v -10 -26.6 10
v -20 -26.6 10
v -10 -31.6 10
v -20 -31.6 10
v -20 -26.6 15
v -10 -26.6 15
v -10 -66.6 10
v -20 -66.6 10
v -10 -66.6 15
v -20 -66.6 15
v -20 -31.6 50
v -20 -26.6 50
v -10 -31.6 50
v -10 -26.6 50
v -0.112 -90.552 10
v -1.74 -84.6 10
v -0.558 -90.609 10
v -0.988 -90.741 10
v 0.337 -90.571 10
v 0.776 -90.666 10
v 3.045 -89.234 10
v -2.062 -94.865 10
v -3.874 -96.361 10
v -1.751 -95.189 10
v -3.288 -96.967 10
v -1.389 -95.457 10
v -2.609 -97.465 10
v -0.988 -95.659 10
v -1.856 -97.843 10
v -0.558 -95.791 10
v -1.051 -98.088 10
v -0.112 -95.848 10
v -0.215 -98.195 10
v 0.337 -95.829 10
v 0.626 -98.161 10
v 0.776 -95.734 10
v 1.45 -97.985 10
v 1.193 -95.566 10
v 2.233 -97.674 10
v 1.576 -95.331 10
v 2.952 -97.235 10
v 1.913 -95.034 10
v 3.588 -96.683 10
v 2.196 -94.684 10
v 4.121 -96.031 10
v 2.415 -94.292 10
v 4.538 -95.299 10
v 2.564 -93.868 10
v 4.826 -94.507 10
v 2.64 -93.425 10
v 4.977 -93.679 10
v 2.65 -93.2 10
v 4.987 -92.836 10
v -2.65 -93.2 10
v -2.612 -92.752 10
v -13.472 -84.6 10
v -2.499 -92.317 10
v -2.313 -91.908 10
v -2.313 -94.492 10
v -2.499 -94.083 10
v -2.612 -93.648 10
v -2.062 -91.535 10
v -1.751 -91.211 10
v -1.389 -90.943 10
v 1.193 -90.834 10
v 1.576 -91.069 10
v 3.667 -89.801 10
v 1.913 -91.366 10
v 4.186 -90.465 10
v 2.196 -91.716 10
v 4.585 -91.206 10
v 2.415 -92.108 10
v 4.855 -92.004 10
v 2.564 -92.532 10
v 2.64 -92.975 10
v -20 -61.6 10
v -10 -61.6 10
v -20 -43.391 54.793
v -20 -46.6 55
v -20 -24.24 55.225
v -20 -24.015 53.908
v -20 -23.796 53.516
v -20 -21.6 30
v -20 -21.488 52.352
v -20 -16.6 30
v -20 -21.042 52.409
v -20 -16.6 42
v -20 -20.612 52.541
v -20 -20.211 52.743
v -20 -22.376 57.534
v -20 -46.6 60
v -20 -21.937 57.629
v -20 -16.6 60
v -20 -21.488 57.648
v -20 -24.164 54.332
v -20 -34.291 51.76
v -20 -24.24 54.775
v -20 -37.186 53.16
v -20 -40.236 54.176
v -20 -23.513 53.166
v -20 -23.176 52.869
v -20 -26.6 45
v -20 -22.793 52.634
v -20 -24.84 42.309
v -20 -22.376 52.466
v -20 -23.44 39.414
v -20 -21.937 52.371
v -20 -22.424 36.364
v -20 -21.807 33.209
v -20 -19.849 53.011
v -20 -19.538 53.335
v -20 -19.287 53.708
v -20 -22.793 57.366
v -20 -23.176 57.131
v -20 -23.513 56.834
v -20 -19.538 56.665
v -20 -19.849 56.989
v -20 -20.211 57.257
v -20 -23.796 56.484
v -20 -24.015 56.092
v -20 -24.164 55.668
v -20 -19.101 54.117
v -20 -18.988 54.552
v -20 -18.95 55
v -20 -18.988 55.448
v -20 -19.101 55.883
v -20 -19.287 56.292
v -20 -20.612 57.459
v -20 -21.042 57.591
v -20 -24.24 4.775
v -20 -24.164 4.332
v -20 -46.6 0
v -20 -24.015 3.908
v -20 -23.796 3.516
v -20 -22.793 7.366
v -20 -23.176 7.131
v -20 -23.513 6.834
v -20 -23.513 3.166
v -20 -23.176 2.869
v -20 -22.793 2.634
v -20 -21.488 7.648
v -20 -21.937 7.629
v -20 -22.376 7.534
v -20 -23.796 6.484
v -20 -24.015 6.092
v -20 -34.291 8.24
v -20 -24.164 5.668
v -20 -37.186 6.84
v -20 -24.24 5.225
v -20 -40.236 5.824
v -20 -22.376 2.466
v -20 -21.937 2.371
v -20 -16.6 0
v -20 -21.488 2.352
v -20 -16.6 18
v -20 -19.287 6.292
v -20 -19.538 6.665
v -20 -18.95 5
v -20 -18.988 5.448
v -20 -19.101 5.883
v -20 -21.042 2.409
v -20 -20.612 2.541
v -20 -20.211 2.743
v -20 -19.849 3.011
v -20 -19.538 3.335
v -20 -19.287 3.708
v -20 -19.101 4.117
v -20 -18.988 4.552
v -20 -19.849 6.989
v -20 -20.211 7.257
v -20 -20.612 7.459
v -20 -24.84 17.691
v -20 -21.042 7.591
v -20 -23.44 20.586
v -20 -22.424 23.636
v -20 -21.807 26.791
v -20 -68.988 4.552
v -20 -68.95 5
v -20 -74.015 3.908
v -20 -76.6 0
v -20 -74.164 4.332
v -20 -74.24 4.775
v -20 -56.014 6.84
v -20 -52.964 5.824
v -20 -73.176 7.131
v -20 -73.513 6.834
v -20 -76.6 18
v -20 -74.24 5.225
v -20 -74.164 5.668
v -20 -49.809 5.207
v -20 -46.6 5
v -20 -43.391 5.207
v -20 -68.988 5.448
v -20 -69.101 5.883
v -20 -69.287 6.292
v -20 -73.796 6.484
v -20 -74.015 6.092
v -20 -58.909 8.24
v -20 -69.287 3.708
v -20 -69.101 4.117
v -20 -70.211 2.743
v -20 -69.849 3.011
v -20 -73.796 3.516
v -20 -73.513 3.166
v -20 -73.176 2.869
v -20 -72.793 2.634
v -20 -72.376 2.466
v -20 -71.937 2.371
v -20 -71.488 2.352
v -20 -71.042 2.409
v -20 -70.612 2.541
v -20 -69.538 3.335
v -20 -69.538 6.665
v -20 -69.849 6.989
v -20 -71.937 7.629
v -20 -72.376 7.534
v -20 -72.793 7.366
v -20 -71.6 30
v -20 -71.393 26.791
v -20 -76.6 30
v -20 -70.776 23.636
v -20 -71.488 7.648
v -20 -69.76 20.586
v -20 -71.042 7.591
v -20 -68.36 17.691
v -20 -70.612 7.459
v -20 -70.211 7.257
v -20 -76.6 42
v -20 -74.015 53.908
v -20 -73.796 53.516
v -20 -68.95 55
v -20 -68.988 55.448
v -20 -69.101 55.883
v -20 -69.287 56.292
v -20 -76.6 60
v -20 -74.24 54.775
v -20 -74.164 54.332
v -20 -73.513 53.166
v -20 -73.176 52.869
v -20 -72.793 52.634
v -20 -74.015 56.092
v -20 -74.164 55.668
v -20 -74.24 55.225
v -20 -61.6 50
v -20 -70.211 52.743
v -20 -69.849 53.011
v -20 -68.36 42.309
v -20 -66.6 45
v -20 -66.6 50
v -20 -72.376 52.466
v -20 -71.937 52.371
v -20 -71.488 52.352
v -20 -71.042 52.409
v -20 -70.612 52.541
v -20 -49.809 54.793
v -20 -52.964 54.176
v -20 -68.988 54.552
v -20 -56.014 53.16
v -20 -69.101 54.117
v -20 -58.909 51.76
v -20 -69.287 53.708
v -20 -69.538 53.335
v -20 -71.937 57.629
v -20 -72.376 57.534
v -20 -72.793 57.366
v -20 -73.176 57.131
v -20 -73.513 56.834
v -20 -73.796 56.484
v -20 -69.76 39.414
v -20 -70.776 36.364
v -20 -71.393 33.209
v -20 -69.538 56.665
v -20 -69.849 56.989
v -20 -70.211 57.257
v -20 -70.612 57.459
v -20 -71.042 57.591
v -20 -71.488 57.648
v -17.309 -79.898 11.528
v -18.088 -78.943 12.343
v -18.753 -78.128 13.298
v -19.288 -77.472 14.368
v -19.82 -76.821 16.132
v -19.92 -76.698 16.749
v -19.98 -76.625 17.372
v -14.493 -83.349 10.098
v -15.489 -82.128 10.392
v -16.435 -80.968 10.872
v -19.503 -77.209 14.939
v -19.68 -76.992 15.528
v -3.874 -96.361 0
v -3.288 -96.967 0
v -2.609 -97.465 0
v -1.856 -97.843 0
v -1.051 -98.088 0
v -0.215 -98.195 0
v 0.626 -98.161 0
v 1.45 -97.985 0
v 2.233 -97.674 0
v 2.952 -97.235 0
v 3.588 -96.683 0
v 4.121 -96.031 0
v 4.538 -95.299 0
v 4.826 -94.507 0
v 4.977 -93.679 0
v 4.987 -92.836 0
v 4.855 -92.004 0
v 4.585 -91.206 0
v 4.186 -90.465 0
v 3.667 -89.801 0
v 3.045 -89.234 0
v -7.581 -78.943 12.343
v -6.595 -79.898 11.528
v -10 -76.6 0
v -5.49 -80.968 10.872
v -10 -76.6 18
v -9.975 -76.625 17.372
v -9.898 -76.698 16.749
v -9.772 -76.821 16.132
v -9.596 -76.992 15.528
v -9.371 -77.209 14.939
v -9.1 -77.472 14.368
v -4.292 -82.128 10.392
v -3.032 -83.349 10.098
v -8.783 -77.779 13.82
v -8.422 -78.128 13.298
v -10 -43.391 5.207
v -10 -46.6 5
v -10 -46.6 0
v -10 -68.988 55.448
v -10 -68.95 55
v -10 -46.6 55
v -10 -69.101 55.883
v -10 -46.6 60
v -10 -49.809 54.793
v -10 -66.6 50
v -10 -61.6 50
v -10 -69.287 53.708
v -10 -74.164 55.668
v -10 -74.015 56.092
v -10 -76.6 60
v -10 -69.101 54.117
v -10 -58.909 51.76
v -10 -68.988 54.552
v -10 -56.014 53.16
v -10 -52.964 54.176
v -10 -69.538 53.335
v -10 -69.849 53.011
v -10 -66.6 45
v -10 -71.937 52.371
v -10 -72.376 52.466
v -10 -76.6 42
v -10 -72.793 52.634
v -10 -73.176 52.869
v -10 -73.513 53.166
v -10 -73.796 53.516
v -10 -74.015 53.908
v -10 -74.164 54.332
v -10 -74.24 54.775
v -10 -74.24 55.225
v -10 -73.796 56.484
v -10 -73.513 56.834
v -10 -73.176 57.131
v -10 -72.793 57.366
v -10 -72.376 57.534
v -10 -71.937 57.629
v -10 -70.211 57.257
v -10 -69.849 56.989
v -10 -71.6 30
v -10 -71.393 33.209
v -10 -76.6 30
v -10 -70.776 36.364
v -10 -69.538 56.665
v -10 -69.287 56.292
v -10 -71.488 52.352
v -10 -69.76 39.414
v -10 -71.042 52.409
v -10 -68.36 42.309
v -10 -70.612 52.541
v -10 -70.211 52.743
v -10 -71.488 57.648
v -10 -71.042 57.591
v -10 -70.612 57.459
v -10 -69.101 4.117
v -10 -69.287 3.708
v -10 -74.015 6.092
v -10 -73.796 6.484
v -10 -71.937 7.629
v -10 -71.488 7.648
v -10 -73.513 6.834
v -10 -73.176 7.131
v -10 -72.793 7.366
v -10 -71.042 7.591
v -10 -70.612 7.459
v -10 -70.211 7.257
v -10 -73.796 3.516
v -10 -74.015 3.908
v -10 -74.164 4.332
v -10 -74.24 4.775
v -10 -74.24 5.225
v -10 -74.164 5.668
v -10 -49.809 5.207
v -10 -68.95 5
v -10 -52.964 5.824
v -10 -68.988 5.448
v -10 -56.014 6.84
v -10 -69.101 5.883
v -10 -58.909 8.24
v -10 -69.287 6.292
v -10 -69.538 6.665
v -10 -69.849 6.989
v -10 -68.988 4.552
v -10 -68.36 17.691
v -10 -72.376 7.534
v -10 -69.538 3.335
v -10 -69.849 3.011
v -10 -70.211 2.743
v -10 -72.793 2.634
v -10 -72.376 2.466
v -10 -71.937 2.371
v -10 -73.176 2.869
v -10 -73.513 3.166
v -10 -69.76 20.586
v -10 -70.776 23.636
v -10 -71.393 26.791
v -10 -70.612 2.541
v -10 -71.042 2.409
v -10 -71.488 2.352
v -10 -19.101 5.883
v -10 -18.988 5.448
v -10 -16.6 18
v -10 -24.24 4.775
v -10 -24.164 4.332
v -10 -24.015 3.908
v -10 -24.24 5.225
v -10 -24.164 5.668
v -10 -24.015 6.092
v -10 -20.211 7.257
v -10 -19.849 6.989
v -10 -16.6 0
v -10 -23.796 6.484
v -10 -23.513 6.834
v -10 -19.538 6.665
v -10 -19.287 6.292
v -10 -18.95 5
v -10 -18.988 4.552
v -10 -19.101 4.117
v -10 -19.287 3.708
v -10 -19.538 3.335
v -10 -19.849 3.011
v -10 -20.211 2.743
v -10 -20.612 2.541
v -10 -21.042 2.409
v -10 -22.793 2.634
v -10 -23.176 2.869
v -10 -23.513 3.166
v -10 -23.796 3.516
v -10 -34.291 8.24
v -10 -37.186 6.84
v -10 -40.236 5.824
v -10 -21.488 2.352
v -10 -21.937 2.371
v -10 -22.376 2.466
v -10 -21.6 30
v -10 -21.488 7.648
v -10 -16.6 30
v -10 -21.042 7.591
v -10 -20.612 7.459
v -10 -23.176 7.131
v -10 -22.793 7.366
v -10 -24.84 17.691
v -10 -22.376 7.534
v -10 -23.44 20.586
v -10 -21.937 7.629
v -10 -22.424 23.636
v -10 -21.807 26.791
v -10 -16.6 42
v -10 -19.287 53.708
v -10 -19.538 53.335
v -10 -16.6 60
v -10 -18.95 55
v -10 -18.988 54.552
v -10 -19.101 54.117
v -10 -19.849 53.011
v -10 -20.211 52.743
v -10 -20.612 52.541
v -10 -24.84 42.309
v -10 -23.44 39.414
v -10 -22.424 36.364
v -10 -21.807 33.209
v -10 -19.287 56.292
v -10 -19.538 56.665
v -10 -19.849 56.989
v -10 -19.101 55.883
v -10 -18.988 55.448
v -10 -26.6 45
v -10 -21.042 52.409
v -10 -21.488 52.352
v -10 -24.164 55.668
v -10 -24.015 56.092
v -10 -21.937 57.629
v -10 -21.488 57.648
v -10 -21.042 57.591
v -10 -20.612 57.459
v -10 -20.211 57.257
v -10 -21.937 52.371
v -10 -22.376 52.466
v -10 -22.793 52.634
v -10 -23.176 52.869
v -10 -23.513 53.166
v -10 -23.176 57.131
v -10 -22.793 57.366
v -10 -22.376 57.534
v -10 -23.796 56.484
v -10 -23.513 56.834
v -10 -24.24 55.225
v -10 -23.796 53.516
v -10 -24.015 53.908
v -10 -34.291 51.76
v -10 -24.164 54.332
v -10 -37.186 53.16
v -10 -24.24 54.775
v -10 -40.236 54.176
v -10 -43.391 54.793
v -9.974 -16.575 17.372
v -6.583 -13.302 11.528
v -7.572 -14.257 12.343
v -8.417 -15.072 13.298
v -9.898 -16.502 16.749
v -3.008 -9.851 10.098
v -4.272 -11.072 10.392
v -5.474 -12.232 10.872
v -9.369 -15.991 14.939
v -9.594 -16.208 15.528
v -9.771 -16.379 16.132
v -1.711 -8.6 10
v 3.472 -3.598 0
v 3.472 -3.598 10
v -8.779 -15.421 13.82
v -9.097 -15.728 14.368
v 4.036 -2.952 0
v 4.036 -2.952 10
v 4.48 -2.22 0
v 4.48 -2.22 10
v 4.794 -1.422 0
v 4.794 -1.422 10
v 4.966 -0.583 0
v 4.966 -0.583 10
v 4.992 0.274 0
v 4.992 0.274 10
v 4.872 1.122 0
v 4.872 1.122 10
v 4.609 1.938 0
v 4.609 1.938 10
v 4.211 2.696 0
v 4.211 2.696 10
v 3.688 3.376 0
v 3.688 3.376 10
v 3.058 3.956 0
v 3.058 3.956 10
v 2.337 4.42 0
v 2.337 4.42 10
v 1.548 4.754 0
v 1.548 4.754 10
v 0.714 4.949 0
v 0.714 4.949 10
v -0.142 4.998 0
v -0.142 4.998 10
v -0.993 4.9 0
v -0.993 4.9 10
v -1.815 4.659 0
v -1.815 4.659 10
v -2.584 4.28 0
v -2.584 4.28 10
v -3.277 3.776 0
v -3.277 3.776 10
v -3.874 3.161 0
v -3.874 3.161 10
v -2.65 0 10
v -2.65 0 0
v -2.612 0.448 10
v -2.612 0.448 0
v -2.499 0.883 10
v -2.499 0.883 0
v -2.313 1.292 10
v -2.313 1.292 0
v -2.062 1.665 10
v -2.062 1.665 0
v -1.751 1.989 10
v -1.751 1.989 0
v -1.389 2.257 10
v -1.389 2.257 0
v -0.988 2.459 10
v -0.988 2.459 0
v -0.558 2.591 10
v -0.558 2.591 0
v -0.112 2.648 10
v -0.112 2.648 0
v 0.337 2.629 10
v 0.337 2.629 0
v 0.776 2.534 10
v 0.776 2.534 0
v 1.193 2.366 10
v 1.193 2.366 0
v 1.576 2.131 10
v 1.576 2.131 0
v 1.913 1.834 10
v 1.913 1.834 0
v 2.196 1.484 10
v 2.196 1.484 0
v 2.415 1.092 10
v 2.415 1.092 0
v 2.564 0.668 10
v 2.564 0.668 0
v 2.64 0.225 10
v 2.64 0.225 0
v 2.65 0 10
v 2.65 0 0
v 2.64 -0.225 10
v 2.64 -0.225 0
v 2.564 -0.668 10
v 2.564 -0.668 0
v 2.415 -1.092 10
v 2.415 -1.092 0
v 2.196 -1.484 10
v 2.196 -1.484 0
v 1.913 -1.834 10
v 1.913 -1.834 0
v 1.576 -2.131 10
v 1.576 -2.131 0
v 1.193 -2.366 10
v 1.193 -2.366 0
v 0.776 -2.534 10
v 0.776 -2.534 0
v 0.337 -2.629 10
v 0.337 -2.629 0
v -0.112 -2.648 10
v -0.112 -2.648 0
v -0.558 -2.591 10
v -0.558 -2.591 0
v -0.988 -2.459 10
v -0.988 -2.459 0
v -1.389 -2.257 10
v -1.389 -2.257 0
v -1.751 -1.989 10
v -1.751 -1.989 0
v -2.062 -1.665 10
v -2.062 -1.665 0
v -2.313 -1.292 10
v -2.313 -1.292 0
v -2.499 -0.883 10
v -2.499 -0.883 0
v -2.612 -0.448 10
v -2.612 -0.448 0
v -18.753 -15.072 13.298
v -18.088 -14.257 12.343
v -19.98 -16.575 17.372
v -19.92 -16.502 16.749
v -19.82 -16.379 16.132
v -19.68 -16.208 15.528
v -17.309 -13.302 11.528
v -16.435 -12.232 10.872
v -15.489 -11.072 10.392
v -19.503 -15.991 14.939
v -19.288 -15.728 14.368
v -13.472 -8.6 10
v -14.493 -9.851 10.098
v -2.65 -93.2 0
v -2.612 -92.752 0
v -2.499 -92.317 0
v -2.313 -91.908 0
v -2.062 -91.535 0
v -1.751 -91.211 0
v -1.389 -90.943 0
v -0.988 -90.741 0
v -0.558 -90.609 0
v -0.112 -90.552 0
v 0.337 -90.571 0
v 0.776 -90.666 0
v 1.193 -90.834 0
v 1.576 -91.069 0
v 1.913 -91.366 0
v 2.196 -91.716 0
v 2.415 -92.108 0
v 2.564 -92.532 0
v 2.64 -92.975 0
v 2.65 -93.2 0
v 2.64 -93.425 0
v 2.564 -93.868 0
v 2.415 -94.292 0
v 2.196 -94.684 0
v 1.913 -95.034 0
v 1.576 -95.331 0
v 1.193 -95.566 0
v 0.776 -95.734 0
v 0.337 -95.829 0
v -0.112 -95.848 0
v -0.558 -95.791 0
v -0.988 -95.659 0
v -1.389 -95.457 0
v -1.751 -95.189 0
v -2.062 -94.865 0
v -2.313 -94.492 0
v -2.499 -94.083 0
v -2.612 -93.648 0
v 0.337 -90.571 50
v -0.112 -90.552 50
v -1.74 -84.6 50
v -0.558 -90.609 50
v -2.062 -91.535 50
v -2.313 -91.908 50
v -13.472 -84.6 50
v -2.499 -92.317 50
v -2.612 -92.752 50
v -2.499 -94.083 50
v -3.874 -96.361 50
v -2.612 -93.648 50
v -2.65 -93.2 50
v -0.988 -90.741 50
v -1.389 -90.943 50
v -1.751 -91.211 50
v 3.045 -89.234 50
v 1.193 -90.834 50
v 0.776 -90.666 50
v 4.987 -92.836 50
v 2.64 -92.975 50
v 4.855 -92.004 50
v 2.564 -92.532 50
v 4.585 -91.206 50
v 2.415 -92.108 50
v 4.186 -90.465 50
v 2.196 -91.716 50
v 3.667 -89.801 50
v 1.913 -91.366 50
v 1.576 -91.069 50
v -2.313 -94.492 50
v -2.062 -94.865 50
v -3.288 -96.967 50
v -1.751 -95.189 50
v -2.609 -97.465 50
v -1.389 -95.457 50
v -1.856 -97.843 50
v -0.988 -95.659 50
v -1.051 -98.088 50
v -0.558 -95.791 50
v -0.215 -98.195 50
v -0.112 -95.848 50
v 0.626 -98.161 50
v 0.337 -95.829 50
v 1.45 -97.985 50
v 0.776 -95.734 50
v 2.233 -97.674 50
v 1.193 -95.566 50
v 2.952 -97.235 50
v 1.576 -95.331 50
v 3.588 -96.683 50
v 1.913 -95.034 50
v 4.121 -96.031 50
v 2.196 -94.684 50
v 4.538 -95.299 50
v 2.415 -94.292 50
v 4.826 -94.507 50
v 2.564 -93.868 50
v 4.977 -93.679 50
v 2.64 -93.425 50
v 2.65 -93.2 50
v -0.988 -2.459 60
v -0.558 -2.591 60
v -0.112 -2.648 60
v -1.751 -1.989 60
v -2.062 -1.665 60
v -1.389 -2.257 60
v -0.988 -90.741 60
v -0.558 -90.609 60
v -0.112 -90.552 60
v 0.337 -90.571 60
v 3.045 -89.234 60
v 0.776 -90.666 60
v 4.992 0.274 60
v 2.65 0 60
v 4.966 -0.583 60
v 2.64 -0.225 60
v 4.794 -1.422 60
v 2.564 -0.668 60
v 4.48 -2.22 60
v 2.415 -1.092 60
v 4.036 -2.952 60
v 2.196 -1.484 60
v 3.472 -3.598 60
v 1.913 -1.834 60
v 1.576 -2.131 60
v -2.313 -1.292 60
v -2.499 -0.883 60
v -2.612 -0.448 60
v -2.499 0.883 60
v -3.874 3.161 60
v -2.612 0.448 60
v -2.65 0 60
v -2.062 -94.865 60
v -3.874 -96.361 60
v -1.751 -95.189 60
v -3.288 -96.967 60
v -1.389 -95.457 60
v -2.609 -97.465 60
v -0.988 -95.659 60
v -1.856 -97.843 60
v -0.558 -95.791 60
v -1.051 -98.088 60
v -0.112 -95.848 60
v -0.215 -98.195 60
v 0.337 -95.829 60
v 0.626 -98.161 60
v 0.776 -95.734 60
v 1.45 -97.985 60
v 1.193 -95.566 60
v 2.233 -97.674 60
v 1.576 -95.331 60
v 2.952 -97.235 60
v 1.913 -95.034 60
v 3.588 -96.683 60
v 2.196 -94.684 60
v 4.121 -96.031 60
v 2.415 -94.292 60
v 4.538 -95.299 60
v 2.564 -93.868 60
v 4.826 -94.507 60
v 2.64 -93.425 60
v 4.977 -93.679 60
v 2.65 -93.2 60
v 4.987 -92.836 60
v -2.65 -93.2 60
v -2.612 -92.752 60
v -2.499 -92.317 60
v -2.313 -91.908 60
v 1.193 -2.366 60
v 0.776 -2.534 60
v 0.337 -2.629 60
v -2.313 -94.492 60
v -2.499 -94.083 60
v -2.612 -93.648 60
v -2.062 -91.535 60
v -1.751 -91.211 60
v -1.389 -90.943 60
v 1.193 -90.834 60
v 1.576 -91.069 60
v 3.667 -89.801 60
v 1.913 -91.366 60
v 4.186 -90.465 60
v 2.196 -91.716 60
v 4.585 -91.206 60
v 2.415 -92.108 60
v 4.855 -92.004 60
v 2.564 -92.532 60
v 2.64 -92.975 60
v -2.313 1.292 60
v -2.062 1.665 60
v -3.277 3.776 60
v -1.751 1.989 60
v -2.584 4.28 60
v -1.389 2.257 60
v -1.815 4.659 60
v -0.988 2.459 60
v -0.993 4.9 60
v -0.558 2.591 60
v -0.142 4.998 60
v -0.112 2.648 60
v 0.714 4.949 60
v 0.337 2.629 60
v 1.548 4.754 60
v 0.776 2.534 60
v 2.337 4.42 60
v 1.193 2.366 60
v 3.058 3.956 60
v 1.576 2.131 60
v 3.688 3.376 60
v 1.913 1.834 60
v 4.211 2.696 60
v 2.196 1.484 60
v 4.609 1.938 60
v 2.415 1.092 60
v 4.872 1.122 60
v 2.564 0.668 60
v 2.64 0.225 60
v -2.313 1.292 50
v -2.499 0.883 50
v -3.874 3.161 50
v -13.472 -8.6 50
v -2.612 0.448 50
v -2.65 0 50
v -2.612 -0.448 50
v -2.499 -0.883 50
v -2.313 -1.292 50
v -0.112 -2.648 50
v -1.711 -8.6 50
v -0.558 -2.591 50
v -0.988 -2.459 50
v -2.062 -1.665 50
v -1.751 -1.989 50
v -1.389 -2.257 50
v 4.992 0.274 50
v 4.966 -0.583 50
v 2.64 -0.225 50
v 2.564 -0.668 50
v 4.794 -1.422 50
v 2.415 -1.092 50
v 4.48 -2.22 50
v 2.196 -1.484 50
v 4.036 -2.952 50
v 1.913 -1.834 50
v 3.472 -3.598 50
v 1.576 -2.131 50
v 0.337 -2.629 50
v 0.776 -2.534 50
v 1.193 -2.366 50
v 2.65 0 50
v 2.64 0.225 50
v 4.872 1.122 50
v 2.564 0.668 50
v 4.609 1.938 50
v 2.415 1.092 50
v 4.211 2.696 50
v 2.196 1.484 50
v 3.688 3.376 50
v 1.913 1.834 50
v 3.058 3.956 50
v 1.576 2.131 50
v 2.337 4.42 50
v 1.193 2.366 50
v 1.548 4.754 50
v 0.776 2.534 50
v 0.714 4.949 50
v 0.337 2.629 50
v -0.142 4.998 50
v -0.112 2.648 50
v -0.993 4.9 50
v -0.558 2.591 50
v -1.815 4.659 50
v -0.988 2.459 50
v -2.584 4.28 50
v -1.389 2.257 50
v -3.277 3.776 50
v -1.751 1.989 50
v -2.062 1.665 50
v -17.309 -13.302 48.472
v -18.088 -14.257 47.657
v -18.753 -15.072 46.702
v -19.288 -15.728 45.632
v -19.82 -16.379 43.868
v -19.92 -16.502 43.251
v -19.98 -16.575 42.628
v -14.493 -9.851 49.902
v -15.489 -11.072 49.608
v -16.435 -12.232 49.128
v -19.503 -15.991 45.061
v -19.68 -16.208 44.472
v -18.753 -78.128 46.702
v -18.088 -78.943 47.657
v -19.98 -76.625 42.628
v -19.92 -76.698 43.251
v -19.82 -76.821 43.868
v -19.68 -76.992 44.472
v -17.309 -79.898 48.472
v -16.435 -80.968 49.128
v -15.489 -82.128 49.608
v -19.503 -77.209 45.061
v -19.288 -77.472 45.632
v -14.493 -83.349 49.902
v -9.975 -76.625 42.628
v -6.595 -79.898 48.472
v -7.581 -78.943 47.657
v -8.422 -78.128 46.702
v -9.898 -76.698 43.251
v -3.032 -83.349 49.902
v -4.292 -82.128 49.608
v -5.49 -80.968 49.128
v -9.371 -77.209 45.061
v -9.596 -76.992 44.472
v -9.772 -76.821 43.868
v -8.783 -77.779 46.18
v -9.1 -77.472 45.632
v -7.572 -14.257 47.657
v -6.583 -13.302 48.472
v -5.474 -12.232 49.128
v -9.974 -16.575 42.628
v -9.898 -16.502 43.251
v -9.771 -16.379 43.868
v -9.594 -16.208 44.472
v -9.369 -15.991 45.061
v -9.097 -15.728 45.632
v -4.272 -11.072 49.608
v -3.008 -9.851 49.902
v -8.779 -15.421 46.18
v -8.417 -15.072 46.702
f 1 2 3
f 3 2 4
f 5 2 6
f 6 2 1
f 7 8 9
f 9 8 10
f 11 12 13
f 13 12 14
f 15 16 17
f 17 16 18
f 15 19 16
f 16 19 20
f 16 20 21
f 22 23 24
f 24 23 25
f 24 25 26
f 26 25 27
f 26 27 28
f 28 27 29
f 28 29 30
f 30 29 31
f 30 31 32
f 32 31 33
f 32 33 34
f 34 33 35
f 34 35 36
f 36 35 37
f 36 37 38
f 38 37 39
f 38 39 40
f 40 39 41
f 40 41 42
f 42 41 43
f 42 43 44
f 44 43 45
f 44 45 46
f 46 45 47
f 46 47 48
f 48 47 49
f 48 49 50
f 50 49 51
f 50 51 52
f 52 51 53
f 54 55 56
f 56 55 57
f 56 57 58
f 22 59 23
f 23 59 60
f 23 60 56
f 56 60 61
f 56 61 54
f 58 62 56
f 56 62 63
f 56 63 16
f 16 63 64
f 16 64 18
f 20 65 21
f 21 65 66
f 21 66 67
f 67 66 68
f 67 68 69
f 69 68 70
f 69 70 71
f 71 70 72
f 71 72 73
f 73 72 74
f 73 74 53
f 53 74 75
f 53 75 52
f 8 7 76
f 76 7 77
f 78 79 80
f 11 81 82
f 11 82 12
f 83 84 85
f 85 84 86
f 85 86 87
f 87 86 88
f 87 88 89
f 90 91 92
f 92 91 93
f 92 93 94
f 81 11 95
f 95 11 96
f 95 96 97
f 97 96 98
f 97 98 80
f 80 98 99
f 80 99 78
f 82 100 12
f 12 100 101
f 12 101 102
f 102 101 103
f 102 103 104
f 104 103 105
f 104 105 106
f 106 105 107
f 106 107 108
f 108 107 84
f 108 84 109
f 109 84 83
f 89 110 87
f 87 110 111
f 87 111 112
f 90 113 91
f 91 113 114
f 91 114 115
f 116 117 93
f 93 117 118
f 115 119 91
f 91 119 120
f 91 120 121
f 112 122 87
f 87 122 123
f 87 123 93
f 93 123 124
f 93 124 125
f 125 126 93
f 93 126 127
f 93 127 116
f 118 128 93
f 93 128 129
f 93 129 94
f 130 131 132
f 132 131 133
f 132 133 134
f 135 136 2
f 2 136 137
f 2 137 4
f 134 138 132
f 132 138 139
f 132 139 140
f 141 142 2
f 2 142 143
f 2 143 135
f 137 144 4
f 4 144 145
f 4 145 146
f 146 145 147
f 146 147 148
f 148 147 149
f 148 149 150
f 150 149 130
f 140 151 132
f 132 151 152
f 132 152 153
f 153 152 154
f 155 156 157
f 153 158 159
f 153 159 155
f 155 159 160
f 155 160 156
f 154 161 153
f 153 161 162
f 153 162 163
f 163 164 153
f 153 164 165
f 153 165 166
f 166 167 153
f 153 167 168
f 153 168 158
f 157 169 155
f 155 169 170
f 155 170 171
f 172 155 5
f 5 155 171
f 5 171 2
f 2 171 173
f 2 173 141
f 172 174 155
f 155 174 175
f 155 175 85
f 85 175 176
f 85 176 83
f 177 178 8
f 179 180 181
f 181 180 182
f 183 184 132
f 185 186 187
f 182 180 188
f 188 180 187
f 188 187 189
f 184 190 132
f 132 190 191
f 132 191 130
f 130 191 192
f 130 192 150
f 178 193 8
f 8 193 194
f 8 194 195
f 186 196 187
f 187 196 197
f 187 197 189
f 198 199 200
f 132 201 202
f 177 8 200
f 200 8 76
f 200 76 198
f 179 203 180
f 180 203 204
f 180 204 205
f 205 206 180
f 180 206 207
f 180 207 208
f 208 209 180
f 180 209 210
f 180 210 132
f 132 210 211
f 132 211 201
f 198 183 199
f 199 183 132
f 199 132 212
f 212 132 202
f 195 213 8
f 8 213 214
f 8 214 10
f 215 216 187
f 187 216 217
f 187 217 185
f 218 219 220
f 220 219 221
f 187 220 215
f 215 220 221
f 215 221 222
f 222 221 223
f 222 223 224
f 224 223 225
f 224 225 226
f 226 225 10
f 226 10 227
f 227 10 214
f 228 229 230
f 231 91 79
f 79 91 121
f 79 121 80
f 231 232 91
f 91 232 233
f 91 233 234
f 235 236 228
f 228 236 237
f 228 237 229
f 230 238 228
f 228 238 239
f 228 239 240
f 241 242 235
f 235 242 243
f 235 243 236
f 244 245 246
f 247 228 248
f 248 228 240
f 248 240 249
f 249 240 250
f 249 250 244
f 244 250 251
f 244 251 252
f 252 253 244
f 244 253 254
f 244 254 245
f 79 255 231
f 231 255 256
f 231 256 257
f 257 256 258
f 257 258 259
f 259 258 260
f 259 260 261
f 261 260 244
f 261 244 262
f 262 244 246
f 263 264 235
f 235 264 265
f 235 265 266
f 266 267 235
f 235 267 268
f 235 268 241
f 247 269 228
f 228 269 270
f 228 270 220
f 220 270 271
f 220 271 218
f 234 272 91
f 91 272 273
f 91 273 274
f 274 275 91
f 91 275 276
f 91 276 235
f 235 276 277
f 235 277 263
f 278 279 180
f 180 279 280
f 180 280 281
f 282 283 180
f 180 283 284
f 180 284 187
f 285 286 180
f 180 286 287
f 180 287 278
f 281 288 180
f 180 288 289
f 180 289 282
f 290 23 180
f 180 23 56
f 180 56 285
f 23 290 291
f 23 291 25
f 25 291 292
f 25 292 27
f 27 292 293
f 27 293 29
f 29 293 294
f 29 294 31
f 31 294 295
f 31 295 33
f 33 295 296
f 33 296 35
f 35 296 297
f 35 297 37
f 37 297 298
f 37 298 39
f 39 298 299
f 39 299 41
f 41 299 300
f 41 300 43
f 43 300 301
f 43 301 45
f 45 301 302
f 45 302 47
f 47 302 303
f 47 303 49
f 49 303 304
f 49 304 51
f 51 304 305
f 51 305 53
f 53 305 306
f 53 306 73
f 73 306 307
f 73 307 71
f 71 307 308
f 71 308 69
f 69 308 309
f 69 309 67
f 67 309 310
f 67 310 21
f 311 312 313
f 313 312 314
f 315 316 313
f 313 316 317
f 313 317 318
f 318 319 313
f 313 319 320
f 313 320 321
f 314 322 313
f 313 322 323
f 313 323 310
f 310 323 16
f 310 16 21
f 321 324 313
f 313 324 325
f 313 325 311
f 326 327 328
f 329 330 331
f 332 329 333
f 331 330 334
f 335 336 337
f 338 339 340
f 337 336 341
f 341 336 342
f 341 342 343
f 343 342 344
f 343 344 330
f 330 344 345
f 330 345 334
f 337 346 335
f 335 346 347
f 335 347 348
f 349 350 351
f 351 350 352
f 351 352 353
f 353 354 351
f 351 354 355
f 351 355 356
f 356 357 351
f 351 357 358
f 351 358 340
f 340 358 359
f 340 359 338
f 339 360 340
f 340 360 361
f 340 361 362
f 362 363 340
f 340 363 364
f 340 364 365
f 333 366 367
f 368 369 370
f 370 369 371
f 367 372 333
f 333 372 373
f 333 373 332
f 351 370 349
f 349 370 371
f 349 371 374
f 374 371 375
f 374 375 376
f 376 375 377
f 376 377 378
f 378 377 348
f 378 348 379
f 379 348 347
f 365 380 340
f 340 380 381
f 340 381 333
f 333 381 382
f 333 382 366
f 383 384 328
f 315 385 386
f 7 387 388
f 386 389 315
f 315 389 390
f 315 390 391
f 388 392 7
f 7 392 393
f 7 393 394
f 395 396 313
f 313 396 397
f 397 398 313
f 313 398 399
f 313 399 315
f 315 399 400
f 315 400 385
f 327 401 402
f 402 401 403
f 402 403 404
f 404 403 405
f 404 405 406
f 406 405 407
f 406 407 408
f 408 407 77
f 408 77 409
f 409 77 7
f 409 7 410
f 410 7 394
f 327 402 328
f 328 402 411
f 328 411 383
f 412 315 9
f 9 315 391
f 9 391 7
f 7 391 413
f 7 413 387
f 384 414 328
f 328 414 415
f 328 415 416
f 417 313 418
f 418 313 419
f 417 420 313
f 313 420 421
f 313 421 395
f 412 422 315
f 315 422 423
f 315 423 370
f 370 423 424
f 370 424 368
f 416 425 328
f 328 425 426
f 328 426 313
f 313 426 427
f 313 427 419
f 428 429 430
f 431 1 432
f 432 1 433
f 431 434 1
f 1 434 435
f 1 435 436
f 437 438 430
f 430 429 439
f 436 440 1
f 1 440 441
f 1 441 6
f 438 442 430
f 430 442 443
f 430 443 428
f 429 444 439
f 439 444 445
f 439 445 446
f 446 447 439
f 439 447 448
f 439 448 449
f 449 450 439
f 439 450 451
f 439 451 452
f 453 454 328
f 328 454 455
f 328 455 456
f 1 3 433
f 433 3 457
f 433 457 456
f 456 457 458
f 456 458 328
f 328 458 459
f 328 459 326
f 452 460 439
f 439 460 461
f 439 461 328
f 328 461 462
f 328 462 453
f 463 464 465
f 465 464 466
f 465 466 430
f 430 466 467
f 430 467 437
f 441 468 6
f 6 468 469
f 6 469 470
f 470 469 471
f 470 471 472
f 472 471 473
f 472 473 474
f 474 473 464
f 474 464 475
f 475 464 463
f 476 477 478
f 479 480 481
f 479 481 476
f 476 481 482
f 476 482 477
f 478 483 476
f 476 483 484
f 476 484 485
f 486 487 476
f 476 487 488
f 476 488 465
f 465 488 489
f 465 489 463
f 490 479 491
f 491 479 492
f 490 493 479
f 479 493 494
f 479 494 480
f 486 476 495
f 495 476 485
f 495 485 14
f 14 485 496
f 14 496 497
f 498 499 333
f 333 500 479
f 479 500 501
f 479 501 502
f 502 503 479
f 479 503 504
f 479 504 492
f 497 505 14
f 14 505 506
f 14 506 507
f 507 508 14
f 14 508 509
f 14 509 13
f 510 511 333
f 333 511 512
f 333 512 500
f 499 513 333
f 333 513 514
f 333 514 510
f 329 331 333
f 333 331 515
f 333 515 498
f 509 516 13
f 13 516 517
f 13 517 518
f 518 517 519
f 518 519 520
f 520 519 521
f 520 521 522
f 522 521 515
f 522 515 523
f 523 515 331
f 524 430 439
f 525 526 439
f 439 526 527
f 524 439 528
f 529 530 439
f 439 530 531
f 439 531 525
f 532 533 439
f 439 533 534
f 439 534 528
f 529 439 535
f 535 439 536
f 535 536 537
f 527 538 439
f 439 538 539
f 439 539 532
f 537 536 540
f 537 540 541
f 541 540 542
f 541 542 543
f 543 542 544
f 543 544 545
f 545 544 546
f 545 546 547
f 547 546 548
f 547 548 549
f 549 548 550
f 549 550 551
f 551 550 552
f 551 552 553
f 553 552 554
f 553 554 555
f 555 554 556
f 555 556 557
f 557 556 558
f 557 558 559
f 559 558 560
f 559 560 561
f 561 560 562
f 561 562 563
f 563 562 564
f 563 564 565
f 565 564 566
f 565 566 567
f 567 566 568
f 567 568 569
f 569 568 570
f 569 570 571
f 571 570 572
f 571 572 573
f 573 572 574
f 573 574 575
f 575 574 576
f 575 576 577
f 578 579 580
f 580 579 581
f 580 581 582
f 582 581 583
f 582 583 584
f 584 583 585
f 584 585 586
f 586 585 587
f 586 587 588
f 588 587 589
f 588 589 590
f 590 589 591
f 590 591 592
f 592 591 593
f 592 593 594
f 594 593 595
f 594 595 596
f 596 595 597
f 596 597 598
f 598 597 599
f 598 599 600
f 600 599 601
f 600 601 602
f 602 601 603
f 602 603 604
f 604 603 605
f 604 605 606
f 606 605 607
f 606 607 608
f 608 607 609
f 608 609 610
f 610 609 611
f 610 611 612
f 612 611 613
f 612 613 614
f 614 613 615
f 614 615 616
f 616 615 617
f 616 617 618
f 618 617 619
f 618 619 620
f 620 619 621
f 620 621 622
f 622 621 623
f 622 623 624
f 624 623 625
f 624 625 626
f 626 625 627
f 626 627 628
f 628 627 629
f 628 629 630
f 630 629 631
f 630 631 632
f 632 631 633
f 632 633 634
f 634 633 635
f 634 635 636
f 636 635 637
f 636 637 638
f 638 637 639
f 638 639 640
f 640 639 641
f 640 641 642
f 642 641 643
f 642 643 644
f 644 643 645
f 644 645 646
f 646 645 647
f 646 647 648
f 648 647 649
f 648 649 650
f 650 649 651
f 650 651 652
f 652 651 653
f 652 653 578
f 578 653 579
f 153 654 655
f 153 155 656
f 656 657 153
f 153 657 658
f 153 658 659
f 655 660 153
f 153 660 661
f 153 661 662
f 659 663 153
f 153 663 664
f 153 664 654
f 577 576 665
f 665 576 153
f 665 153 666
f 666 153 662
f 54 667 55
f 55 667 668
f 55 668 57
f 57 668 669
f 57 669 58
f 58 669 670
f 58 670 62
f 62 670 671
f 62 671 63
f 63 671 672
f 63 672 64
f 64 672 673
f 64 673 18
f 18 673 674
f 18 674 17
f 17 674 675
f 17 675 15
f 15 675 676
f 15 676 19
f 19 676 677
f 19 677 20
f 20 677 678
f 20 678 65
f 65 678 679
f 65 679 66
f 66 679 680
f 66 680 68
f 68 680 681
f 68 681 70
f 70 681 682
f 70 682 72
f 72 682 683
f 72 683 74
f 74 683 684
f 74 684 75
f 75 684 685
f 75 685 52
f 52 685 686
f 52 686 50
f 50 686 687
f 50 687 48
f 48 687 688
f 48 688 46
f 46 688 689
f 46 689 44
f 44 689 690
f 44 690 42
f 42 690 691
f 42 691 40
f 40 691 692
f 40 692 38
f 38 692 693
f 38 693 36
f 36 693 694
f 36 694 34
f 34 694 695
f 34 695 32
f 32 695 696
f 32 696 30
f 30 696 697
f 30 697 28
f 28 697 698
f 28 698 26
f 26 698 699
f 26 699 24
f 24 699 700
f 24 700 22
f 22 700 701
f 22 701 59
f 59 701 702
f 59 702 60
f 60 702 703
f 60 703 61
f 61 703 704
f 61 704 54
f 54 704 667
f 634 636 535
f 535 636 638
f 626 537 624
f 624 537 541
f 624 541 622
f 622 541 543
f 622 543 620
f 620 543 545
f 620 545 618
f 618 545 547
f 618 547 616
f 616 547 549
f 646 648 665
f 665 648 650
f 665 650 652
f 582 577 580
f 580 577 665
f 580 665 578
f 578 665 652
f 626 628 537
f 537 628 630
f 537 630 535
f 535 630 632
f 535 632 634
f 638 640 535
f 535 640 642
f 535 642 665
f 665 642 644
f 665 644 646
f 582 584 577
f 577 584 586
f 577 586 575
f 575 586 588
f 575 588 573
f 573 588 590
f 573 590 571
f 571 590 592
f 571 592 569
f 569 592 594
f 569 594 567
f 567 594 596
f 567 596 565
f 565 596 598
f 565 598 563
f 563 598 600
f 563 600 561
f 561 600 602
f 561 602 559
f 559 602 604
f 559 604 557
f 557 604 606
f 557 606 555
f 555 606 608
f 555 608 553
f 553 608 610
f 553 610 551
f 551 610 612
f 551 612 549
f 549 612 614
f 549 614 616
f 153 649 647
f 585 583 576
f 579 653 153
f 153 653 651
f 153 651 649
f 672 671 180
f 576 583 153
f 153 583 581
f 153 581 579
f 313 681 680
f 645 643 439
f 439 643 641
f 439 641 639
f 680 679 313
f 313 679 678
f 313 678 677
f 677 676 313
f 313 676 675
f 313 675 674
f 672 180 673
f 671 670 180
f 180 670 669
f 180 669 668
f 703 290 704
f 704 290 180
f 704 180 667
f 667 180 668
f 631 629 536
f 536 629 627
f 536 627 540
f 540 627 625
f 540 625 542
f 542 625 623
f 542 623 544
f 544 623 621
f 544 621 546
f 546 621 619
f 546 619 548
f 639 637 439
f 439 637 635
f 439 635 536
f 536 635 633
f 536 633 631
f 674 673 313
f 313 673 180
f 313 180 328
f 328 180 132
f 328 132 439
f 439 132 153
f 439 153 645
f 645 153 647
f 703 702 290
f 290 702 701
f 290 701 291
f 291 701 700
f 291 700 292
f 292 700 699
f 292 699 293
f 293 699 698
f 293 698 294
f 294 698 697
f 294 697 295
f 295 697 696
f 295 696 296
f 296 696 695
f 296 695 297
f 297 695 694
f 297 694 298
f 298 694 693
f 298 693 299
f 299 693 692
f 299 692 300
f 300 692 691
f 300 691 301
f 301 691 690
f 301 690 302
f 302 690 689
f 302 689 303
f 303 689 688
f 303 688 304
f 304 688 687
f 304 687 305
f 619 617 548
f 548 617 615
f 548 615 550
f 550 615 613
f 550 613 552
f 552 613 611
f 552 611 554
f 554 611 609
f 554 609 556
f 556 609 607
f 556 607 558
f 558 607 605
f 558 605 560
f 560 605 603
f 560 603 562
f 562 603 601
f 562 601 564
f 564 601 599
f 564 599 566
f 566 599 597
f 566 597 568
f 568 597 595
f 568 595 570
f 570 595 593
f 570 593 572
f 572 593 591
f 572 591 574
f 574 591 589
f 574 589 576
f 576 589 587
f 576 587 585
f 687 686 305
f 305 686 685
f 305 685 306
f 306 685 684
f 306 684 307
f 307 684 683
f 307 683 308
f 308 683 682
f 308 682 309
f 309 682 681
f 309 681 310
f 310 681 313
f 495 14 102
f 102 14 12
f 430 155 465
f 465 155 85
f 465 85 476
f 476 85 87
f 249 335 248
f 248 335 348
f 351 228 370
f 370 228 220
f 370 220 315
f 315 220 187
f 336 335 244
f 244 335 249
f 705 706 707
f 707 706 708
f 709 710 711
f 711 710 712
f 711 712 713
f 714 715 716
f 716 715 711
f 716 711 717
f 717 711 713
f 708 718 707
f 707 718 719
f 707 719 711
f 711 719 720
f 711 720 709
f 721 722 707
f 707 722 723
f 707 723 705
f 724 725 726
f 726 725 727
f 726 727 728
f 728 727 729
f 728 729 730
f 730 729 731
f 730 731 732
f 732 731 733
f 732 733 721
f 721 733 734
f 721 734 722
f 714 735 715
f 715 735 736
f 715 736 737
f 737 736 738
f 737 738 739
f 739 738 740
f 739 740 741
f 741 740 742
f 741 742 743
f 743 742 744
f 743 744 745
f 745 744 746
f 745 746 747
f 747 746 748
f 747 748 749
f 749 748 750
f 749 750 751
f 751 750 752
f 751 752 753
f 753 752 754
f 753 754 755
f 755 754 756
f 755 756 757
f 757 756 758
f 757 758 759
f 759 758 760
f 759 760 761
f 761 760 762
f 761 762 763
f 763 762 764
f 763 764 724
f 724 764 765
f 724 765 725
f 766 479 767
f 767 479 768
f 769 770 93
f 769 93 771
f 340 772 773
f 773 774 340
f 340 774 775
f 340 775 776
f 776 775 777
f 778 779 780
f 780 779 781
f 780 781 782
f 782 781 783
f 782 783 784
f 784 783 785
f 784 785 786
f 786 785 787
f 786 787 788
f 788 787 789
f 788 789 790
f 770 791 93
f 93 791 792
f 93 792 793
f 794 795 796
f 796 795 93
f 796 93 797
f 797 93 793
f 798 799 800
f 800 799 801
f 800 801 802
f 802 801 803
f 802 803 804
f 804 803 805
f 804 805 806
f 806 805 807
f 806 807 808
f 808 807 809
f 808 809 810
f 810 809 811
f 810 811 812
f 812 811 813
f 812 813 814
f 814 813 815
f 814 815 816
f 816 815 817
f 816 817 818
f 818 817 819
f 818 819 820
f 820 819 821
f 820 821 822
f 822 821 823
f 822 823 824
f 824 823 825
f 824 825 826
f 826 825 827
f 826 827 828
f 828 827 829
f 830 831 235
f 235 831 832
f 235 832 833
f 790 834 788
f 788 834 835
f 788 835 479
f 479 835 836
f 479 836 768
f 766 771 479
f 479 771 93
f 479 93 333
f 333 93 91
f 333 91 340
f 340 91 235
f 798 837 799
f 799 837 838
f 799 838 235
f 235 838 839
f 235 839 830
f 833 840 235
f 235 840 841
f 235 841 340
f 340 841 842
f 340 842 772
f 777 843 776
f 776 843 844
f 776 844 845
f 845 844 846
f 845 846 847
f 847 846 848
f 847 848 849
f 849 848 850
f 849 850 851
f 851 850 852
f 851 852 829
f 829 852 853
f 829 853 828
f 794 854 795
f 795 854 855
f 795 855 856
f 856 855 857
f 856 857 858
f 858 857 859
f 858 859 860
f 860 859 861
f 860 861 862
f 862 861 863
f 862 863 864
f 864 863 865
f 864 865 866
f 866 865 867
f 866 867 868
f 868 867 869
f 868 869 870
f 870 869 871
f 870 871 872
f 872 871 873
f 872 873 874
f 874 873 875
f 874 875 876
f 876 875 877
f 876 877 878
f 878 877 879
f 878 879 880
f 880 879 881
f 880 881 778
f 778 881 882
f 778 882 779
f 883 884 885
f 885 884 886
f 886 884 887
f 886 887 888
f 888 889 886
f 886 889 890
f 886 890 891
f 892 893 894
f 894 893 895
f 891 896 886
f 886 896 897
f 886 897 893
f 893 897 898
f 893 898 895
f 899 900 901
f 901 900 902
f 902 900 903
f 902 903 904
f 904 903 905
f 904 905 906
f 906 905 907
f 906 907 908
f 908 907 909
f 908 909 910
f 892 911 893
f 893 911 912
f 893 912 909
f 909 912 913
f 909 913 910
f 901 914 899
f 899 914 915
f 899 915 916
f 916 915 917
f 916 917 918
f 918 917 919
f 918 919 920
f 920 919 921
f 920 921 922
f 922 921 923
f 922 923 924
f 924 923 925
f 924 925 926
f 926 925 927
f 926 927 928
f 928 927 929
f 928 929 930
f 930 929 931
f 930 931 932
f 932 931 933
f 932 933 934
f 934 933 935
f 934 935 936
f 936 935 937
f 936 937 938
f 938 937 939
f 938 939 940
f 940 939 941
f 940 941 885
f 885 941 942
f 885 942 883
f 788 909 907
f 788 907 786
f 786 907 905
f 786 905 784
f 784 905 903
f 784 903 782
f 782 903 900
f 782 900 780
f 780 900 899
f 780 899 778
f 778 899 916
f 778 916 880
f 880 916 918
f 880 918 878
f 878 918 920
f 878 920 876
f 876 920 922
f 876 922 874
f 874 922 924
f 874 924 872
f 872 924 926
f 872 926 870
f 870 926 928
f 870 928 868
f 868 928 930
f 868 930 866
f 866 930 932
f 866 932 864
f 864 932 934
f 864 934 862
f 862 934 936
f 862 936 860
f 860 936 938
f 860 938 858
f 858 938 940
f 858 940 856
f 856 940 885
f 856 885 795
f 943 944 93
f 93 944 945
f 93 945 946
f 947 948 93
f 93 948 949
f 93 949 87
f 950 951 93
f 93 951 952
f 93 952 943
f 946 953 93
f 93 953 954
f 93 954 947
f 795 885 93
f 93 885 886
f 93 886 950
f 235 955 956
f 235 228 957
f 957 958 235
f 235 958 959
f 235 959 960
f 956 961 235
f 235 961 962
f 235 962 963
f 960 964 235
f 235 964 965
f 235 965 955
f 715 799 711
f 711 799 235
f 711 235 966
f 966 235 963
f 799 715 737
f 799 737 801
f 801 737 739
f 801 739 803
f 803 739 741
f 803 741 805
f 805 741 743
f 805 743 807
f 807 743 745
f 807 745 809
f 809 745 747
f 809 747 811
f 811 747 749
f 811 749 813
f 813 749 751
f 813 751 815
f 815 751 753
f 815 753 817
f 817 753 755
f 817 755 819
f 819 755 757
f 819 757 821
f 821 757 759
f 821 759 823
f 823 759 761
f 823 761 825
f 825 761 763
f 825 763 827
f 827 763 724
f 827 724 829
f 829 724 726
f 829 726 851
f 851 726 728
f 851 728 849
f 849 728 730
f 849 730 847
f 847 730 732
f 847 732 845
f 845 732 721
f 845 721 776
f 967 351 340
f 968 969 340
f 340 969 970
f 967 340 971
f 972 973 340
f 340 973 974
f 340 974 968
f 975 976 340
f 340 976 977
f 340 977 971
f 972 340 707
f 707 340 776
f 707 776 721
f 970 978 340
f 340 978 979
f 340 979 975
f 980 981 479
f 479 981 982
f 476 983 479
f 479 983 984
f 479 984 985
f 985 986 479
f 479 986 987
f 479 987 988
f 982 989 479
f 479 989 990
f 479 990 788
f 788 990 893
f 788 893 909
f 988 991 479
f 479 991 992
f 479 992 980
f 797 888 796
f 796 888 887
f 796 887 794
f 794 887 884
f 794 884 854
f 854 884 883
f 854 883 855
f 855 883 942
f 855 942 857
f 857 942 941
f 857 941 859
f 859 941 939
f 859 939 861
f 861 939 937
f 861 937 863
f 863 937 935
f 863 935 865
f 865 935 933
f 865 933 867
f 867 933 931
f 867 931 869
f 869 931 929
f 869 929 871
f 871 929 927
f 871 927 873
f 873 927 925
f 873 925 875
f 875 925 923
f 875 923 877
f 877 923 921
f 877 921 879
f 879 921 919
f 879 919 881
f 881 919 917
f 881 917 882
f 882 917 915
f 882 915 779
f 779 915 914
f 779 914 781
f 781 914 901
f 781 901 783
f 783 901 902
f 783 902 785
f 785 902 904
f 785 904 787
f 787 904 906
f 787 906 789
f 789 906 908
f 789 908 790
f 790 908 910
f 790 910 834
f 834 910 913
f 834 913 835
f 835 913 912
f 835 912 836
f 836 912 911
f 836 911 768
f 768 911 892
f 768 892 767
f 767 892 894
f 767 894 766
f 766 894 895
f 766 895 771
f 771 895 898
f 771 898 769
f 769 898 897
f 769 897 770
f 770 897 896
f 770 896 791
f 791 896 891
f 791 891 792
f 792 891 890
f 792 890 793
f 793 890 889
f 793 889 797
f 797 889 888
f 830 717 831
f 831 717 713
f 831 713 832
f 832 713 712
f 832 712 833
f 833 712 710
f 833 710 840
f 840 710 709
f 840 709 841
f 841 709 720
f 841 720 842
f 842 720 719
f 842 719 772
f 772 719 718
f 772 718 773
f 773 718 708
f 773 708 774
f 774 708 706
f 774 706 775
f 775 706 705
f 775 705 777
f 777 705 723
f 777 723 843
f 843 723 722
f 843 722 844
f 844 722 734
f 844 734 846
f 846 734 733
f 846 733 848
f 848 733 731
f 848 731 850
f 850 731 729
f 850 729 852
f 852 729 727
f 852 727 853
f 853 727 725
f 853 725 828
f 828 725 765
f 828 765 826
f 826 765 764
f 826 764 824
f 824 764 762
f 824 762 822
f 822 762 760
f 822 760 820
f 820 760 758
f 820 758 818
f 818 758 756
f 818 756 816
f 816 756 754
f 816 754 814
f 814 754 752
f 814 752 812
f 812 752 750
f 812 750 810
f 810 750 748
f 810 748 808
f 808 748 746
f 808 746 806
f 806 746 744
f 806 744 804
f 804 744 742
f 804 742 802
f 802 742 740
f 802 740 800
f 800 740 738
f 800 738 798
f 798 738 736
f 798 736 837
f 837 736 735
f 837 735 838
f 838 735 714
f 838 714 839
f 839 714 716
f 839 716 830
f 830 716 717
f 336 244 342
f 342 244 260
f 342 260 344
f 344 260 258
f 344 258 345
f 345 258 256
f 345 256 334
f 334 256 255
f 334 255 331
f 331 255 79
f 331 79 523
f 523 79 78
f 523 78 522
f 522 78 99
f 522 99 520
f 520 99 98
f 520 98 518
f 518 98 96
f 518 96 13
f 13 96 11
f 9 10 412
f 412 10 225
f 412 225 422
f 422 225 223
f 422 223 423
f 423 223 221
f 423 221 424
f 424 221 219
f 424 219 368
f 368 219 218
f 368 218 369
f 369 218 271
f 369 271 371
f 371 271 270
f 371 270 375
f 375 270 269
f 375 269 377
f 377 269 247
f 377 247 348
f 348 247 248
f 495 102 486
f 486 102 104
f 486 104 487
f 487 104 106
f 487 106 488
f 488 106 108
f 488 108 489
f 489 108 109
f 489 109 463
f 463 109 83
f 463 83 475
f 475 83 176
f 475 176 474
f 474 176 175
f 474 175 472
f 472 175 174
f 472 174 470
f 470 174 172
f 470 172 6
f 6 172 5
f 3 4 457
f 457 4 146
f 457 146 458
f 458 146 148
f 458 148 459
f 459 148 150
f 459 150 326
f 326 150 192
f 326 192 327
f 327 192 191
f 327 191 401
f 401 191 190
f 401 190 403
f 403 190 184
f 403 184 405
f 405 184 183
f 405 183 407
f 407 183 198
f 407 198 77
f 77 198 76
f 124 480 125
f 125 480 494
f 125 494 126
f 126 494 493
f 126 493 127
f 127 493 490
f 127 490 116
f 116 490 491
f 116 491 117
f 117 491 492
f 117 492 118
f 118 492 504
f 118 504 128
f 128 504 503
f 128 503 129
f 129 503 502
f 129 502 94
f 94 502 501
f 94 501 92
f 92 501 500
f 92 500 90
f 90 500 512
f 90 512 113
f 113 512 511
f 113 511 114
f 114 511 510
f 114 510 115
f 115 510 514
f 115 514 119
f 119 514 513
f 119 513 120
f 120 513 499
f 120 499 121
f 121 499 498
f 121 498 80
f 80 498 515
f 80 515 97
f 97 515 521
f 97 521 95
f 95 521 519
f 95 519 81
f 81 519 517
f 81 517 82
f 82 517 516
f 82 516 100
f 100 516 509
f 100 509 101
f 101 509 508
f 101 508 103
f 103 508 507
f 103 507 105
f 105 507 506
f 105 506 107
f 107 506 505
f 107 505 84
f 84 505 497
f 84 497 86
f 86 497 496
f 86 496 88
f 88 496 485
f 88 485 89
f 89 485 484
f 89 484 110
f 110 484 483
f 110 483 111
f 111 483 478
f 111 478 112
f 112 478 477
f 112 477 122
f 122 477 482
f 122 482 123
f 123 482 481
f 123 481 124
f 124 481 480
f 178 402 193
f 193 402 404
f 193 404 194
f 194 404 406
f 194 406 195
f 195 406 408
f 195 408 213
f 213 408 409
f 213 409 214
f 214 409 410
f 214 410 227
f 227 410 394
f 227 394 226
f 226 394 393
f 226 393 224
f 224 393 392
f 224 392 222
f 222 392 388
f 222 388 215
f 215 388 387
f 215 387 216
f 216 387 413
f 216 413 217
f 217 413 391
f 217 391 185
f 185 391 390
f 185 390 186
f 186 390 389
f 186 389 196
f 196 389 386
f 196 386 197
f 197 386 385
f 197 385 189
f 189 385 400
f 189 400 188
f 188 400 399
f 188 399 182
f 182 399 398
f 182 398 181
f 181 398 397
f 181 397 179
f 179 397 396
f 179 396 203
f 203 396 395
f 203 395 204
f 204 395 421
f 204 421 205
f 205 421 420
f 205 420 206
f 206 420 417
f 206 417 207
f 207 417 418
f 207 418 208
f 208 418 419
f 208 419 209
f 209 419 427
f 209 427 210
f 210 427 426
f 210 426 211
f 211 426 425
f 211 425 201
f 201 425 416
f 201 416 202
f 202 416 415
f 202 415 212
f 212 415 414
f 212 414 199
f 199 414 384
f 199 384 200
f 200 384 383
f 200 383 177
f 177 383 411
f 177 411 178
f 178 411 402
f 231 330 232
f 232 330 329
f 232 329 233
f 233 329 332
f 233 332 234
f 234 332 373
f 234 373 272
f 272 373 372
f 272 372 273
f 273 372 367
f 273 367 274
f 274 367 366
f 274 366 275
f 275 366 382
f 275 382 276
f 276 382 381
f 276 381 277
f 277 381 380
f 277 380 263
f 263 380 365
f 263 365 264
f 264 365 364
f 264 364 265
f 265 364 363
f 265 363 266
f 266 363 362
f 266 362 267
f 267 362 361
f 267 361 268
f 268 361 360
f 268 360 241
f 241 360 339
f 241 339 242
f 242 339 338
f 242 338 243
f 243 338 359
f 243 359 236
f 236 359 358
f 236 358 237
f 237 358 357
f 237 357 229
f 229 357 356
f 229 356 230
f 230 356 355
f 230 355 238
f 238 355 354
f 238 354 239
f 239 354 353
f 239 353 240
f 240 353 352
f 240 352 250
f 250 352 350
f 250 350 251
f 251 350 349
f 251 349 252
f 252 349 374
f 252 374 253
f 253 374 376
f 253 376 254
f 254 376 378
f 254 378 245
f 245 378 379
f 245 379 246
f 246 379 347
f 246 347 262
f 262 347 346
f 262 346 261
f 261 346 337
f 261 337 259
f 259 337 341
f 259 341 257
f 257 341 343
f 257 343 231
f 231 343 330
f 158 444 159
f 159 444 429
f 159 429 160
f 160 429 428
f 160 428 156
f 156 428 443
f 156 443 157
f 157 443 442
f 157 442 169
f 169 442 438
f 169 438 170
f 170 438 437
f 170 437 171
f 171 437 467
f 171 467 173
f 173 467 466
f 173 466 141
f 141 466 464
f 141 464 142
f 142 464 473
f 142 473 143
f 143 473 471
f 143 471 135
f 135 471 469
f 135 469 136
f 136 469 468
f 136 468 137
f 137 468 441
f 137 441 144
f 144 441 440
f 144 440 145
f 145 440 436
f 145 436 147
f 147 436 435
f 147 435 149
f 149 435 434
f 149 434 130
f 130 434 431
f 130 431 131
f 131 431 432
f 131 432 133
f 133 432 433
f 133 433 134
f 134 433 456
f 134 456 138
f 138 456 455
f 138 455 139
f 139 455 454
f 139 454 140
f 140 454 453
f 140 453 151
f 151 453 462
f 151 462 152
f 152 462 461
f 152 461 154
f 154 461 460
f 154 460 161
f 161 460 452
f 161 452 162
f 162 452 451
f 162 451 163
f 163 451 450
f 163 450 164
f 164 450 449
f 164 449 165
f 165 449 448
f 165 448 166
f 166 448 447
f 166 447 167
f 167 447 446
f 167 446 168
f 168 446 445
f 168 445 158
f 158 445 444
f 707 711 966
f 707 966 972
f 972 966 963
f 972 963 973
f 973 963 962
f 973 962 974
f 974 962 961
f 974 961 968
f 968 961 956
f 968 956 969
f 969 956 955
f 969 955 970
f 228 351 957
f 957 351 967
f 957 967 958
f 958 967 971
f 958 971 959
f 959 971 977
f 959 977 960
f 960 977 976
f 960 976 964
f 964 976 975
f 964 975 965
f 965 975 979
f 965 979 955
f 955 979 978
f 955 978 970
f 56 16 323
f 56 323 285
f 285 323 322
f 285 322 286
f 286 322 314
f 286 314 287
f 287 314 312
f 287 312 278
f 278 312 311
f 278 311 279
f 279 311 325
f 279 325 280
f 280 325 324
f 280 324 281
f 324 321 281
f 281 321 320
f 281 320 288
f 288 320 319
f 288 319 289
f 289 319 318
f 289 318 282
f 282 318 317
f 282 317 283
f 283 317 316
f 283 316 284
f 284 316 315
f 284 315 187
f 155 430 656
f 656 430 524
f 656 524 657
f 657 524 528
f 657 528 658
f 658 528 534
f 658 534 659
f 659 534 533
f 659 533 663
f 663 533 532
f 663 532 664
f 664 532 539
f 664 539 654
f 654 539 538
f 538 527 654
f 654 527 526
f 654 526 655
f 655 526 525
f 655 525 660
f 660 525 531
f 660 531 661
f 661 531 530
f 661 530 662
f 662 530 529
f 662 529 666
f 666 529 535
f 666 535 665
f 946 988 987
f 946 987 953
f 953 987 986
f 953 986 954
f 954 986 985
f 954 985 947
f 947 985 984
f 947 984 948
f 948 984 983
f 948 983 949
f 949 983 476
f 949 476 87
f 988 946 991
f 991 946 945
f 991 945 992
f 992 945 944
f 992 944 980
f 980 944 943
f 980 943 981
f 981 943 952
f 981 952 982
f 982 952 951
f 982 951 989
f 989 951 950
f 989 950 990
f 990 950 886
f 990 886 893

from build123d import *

# Parameters (mm, degrees)
SKETCH_1_W          = 10
SKETCH_1_H          = 40
SKETCH_1_H_2        = 10
SKETCH_1_R          = 5
SKETCH_1_R_2        = 2.65
EXTRUDE_1_DEPTH     = 10
SKETCH_1_5_W        = 10
SKETCH_1_5_H        = 10
EXTRUDE_2_DEPTH     = 50
EXTRUDE_START       = 50
SKETCH_1_6_R        = 5
SKETCH_1_6_R_2      = 2.65
SKETCH_1_6_W        = 10
SKETCH_1_6_H        = 10
SKETCH_1_6_H_2      = 40
EXTRUDE_3_DEPTH     = 10
SKETCH_2_R          = 25
CUT_EXTRUDE_1_DEPTH = 118.763491796
SKETCH_3_R          = 2.65
CUT_EXTRUDE_2_DEPTH = 117.052746628
FILLET_1_R          = 8


with BuildPart() as part:
    # 草图1 → 凸台-拉伸1 (new body)
    with BuildSketch(Plane.XY):
        with Locations((-15, -46.6)):
            Rectangle(SKETCH_1_W, SKETCH_1_H)
        with Locations((-15, -21.6)):
            Rectangle(SKETCH_1_W, SKETCH_1_H_2)
        with BuildLine():
            Line((-3.873829785, 3.161240705), (-20, -16.6))
            Line((-20, -16.6), (-10, -16.6))
            Line((-10, -16.6), (3.472226939, -3.597727072))
            ThreePointArc((3.472226939, -3.597727072), (-3.38544422, -3.679506412), (-3.873829785, 3.161240705))
        make_face()
        Circle(SKETCH_1_R)
        Circle(SKETCH_1_R_2, mode=Mode.SUBTRACT)
        with Locations((-15, -71.6)):
            Rectangle(SKETCH_1_W, SKETCH_1_H_2)
        with BuildLine():
            Line((-10, -76.6), (-20, -76.6))
            Line((-20, -76.6), (-3.873829785, -96.361240705))
            ThreePointArc((-3.873829785, -96.361240705), (-3.587719738, -89.717433837), (3.044640112, -89.233872595))
            Line((3.044640112, -89.233872595), (-10, -76.6))
        make_face()
        with Locations((0, -93.2)):
            Circle(SKETCH_1_R)
        with Locations((0, -93.2)):
            Circle(SKETCH_1_R_2, mode=Mode.SUBTRACT)
    extrude(amount=EXTRUDE_1_DEPTH)

    # 草图1<5> → 凸台-拉伸2 (add)
    with BuildSketch(Plane.XY):
        with Locations((-15, -21.6)):
            Rectangle(SKETCH_1_5_W, SKETCH_1_5_H)
        with Locations((-15, -71.6)):
            Rectangle(SKETCH_1_5_W, SKETCH_1_5_H)
    extrude(amount=EXTRUDE_2_DEPTH)

    # 草图1<6> → 凸台-拉伸3 (add)
    with BuildSketch(Plane.XY.offset(EXTRUDE_START)):
        Circle(SKETCH_1_6_R)
        Circle(SKETCH_1_6_R_2, mode=Mode.SUBTRACT)
        with BuildLine():
            Line((-3.873829785, 3.161240705), (-20, -16.6))
            Line((-20, -16.6), (-10, -16.6))
            Line((-10, -16.6), (3.472226939, -3.597727072))
            ThreePointArc((3.472226939, -3.597727072), (-3.38544422, -3.679506412), (-3.873829785, 3.161240705))
        make_face()
        with Locations((-15, -21.6)):
            Rectangle(SKETCH_1_6_W, SKETCH_1_6_H)
        with Locations((-15, -46.6)):
            Rectangle(SKETCH_1_6_W, SKETCH_1_6_H_2)
        with Locations((-15, -71.6)):
            Rectangle(SKETCH_1_6_W, SKETCH_1_6_H)
        with Locations((0, -93.2)):
            Circle(SKETCH_1_6_R)
        with Locations((0, -93.2)):
            Circle(SKETCH_1_6_R_2, mode=Mode.SUBTRACT)
        with BuildLine():
            Line((-10, -76.6), (-20, -76.6))
            Line((-20, -76.6), (-3.873829785, -96.361240705))
            ThreePointArc((-3.873829785, -96.361240705), (-3.587719738, -89.717433837), (3.044640112, -89.233872595))
            Line((3.044640112, -89.233872595), (-10, -76.6))
        make_face()
    extrude(amount=EXTRUDE_3_DEPTH)

    # 草图2 → 切除-拉伸1 (cut, through all)
    with BuildSketch(Plane.ZY.offset(20)):
        with Locations((30, -46.6)):
            Circle(SKETCH_2_R)
    extrude(amount=-CUT_EXTRUDE_1_DEPTH, mode=Mode.SUBTRACT)

    # 草图3 → 切除-拉伸2 (cut, through all)
    with BuildSketch(Plane(origin=(-10, 0, 0), x_dir=(0, 0, -1), z_dir=(1, 0, 0))):
        with Locations(Location((-55, -21.6, 0), (0, 0, 90))):
            Circle(SKETCH_3_R)
        with Locations(Location((-5, -21.6, 0), (0, 0, 90))):
            Circle(SKETCH_3_R)
        with Locations(Location((-55, -71.6, 0), (0, 0, 90))):
            Circle(SKETCH_3_R)
        with Locations(Location((-5, -71.6, 0), (0, 0, 90))):
            Circle(SKETCH_3_R)
    extrude(amount=-CUT_EXTRUDE_2_DEPTH, mode=Mode.SUBTRACT)

    # 圆角1
    fillet_1_edges = [part.edges().sort_by_distance(p)[0] for p in [
        (-15, -16.6, 10),
        (-15, -16.6, 50),
        (-15, -76.6, 10),
        (-15, -76.6, 50),
    ]]
    fillet(fillet_1_edges, radius=FILLET_1_R)


solid = part.part
